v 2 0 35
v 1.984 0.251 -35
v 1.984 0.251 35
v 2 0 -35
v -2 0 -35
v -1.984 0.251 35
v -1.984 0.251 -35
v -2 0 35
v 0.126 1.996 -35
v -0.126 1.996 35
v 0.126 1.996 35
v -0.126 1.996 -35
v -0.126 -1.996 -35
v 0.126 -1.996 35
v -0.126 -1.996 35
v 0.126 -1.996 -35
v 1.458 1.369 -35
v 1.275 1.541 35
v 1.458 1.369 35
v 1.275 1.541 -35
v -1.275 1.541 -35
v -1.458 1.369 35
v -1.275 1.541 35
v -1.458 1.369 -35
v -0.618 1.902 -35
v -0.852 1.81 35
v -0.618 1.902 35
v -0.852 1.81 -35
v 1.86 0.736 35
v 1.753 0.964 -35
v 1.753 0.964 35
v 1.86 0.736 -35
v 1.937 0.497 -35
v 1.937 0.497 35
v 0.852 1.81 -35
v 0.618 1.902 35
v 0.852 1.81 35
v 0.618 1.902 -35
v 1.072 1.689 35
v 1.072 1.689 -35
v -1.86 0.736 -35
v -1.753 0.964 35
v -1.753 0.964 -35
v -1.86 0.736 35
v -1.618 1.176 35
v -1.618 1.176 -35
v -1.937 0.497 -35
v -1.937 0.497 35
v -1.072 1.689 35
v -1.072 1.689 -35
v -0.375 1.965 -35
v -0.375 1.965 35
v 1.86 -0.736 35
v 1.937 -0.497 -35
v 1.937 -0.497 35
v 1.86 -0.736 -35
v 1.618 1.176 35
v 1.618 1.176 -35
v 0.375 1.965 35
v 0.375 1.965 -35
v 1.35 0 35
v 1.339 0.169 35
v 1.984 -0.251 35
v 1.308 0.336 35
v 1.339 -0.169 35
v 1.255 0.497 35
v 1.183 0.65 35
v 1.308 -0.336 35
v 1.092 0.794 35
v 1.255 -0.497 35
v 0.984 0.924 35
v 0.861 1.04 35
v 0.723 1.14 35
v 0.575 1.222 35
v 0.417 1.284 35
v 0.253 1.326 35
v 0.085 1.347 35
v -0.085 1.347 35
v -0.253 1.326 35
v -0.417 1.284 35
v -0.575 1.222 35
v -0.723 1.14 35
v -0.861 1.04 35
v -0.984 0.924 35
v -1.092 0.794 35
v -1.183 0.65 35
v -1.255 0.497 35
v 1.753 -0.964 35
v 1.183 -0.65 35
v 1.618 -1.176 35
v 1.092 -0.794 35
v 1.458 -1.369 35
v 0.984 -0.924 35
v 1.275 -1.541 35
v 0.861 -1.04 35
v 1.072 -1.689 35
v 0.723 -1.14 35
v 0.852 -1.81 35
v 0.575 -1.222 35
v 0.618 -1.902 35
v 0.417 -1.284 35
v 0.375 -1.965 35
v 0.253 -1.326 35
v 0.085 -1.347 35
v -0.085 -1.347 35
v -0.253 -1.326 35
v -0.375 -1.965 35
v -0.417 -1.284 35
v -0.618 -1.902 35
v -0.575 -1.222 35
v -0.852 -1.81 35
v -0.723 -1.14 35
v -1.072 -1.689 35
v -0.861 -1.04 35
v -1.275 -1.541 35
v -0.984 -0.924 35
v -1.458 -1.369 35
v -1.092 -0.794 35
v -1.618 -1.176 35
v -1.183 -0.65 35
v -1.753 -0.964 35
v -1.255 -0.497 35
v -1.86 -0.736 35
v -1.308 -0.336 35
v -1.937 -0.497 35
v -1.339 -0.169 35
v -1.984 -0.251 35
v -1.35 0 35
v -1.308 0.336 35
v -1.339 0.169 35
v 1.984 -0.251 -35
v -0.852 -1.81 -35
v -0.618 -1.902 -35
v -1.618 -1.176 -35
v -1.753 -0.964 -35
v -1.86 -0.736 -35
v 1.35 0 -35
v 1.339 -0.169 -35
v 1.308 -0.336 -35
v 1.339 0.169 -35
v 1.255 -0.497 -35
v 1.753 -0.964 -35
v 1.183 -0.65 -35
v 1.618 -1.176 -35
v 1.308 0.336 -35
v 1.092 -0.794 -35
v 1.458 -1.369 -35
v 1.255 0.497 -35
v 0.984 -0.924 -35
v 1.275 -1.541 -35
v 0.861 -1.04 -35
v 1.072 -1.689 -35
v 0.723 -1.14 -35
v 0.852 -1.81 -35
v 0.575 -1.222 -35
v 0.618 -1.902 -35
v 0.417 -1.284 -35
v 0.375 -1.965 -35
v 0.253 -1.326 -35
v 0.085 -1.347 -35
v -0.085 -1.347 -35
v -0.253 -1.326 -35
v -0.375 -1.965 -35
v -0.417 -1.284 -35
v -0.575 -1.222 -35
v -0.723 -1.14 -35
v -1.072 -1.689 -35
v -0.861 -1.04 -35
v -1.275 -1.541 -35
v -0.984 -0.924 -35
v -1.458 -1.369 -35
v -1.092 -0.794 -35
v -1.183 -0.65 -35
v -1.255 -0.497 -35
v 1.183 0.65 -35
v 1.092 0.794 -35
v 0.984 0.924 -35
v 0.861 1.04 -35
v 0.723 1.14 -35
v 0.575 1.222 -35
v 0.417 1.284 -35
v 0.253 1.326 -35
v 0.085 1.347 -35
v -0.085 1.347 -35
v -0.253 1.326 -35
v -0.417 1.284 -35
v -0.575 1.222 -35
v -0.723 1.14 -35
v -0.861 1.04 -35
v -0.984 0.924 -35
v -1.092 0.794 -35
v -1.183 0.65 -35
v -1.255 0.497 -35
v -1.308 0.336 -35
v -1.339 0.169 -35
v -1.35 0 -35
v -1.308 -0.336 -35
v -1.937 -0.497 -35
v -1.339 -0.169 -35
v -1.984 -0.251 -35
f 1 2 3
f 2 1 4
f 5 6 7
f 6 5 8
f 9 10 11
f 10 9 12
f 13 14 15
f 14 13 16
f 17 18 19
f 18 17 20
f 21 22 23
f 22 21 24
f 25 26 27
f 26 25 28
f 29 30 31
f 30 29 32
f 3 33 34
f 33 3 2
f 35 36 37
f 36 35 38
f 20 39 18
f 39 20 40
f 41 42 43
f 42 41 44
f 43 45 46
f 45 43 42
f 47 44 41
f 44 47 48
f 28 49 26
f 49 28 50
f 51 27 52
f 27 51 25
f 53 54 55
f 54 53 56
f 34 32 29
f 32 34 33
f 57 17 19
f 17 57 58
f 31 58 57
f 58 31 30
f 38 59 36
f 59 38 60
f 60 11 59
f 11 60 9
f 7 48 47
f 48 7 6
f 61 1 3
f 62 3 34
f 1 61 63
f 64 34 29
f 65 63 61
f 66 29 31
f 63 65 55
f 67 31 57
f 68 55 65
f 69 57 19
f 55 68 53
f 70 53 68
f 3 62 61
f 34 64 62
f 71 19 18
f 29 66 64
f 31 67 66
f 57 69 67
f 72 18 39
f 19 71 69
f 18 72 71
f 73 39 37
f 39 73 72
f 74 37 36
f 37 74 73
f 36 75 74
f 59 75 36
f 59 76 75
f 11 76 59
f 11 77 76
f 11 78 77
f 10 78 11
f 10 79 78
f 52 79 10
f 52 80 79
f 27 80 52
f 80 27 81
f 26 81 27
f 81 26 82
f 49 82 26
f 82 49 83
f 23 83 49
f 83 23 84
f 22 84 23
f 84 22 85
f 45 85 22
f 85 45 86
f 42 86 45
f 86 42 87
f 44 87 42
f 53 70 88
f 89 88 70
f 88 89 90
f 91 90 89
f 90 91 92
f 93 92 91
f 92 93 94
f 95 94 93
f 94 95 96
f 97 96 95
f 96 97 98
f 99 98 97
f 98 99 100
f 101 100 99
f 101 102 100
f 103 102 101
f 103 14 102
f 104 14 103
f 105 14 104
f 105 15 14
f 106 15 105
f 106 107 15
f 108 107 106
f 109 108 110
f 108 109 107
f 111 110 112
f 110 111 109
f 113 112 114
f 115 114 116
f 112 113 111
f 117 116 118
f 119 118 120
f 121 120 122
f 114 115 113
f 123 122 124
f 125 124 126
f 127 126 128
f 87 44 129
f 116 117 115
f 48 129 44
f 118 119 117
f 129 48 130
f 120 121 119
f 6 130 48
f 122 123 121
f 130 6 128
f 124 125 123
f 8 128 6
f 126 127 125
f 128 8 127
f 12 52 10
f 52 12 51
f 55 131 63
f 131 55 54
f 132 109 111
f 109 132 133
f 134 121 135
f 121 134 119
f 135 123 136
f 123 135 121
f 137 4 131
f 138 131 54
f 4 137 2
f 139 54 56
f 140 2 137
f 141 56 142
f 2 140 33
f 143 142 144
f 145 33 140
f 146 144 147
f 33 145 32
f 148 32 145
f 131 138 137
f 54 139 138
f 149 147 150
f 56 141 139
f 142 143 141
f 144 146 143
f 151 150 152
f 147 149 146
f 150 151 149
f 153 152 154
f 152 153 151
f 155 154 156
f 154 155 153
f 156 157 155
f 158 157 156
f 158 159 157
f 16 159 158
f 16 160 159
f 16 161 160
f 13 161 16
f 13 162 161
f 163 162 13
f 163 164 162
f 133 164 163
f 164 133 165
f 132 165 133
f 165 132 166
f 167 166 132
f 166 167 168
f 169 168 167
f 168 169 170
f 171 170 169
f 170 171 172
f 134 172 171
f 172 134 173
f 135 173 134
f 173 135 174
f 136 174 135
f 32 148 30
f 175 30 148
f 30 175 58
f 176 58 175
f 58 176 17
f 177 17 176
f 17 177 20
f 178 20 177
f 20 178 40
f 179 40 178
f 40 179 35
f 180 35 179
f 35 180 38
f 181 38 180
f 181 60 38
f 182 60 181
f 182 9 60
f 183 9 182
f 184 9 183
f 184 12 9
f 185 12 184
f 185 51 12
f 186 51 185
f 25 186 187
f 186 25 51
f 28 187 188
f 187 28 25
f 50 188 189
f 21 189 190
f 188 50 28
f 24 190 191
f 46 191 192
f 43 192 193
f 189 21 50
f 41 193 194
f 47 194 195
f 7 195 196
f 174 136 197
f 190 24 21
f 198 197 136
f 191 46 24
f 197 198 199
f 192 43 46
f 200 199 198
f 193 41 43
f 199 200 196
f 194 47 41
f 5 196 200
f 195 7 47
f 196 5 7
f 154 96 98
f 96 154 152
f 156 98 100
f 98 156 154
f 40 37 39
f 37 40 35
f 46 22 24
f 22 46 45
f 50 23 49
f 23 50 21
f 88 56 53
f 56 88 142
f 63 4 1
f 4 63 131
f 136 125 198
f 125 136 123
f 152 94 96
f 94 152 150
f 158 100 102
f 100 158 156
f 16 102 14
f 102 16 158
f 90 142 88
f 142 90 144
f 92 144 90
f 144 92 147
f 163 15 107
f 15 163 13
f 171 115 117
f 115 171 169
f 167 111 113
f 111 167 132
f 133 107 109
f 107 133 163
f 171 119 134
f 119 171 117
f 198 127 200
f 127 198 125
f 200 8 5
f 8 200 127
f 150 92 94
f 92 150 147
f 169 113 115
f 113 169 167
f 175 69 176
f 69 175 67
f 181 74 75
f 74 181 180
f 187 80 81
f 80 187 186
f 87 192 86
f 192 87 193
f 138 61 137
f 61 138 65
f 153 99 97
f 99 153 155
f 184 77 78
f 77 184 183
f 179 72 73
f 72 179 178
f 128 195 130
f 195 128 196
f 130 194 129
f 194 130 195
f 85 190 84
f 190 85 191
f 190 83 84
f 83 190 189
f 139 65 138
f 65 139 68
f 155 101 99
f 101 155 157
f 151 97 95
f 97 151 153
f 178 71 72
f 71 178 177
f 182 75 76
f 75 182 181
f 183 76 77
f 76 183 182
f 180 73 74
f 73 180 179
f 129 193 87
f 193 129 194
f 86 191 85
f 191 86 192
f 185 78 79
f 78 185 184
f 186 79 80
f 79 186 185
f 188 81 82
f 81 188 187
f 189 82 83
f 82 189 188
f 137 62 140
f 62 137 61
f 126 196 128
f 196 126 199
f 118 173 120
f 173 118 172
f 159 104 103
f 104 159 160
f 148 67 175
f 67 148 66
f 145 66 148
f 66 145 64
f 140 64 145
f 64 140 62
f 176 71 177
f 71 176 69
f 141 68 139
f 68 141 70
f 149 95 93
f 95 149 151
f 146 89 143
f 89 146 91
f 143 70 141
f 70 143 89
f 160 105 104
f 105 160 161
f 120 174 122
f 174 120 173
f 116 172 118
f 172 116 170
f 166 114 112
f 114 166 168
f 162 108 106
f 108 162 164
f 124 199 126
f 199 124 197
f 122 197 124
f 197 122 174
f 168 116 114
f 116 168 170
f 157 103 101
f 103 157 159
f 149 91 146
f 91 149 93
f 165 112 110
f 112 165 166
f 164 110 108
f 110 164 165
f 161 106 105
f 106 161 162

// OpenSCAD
$fn = 50;


difference() {
	union() {
		translate(v = [0, 0, -35.0000000000]) {
			cylinder(h = 70, r = 2.0000000000);
		}
	}
	union() {
		translate(v = [0, 0, -100.0000000000]) {
			cylinder(h = 200, r = 1.3500000000);
		}
	}
}
